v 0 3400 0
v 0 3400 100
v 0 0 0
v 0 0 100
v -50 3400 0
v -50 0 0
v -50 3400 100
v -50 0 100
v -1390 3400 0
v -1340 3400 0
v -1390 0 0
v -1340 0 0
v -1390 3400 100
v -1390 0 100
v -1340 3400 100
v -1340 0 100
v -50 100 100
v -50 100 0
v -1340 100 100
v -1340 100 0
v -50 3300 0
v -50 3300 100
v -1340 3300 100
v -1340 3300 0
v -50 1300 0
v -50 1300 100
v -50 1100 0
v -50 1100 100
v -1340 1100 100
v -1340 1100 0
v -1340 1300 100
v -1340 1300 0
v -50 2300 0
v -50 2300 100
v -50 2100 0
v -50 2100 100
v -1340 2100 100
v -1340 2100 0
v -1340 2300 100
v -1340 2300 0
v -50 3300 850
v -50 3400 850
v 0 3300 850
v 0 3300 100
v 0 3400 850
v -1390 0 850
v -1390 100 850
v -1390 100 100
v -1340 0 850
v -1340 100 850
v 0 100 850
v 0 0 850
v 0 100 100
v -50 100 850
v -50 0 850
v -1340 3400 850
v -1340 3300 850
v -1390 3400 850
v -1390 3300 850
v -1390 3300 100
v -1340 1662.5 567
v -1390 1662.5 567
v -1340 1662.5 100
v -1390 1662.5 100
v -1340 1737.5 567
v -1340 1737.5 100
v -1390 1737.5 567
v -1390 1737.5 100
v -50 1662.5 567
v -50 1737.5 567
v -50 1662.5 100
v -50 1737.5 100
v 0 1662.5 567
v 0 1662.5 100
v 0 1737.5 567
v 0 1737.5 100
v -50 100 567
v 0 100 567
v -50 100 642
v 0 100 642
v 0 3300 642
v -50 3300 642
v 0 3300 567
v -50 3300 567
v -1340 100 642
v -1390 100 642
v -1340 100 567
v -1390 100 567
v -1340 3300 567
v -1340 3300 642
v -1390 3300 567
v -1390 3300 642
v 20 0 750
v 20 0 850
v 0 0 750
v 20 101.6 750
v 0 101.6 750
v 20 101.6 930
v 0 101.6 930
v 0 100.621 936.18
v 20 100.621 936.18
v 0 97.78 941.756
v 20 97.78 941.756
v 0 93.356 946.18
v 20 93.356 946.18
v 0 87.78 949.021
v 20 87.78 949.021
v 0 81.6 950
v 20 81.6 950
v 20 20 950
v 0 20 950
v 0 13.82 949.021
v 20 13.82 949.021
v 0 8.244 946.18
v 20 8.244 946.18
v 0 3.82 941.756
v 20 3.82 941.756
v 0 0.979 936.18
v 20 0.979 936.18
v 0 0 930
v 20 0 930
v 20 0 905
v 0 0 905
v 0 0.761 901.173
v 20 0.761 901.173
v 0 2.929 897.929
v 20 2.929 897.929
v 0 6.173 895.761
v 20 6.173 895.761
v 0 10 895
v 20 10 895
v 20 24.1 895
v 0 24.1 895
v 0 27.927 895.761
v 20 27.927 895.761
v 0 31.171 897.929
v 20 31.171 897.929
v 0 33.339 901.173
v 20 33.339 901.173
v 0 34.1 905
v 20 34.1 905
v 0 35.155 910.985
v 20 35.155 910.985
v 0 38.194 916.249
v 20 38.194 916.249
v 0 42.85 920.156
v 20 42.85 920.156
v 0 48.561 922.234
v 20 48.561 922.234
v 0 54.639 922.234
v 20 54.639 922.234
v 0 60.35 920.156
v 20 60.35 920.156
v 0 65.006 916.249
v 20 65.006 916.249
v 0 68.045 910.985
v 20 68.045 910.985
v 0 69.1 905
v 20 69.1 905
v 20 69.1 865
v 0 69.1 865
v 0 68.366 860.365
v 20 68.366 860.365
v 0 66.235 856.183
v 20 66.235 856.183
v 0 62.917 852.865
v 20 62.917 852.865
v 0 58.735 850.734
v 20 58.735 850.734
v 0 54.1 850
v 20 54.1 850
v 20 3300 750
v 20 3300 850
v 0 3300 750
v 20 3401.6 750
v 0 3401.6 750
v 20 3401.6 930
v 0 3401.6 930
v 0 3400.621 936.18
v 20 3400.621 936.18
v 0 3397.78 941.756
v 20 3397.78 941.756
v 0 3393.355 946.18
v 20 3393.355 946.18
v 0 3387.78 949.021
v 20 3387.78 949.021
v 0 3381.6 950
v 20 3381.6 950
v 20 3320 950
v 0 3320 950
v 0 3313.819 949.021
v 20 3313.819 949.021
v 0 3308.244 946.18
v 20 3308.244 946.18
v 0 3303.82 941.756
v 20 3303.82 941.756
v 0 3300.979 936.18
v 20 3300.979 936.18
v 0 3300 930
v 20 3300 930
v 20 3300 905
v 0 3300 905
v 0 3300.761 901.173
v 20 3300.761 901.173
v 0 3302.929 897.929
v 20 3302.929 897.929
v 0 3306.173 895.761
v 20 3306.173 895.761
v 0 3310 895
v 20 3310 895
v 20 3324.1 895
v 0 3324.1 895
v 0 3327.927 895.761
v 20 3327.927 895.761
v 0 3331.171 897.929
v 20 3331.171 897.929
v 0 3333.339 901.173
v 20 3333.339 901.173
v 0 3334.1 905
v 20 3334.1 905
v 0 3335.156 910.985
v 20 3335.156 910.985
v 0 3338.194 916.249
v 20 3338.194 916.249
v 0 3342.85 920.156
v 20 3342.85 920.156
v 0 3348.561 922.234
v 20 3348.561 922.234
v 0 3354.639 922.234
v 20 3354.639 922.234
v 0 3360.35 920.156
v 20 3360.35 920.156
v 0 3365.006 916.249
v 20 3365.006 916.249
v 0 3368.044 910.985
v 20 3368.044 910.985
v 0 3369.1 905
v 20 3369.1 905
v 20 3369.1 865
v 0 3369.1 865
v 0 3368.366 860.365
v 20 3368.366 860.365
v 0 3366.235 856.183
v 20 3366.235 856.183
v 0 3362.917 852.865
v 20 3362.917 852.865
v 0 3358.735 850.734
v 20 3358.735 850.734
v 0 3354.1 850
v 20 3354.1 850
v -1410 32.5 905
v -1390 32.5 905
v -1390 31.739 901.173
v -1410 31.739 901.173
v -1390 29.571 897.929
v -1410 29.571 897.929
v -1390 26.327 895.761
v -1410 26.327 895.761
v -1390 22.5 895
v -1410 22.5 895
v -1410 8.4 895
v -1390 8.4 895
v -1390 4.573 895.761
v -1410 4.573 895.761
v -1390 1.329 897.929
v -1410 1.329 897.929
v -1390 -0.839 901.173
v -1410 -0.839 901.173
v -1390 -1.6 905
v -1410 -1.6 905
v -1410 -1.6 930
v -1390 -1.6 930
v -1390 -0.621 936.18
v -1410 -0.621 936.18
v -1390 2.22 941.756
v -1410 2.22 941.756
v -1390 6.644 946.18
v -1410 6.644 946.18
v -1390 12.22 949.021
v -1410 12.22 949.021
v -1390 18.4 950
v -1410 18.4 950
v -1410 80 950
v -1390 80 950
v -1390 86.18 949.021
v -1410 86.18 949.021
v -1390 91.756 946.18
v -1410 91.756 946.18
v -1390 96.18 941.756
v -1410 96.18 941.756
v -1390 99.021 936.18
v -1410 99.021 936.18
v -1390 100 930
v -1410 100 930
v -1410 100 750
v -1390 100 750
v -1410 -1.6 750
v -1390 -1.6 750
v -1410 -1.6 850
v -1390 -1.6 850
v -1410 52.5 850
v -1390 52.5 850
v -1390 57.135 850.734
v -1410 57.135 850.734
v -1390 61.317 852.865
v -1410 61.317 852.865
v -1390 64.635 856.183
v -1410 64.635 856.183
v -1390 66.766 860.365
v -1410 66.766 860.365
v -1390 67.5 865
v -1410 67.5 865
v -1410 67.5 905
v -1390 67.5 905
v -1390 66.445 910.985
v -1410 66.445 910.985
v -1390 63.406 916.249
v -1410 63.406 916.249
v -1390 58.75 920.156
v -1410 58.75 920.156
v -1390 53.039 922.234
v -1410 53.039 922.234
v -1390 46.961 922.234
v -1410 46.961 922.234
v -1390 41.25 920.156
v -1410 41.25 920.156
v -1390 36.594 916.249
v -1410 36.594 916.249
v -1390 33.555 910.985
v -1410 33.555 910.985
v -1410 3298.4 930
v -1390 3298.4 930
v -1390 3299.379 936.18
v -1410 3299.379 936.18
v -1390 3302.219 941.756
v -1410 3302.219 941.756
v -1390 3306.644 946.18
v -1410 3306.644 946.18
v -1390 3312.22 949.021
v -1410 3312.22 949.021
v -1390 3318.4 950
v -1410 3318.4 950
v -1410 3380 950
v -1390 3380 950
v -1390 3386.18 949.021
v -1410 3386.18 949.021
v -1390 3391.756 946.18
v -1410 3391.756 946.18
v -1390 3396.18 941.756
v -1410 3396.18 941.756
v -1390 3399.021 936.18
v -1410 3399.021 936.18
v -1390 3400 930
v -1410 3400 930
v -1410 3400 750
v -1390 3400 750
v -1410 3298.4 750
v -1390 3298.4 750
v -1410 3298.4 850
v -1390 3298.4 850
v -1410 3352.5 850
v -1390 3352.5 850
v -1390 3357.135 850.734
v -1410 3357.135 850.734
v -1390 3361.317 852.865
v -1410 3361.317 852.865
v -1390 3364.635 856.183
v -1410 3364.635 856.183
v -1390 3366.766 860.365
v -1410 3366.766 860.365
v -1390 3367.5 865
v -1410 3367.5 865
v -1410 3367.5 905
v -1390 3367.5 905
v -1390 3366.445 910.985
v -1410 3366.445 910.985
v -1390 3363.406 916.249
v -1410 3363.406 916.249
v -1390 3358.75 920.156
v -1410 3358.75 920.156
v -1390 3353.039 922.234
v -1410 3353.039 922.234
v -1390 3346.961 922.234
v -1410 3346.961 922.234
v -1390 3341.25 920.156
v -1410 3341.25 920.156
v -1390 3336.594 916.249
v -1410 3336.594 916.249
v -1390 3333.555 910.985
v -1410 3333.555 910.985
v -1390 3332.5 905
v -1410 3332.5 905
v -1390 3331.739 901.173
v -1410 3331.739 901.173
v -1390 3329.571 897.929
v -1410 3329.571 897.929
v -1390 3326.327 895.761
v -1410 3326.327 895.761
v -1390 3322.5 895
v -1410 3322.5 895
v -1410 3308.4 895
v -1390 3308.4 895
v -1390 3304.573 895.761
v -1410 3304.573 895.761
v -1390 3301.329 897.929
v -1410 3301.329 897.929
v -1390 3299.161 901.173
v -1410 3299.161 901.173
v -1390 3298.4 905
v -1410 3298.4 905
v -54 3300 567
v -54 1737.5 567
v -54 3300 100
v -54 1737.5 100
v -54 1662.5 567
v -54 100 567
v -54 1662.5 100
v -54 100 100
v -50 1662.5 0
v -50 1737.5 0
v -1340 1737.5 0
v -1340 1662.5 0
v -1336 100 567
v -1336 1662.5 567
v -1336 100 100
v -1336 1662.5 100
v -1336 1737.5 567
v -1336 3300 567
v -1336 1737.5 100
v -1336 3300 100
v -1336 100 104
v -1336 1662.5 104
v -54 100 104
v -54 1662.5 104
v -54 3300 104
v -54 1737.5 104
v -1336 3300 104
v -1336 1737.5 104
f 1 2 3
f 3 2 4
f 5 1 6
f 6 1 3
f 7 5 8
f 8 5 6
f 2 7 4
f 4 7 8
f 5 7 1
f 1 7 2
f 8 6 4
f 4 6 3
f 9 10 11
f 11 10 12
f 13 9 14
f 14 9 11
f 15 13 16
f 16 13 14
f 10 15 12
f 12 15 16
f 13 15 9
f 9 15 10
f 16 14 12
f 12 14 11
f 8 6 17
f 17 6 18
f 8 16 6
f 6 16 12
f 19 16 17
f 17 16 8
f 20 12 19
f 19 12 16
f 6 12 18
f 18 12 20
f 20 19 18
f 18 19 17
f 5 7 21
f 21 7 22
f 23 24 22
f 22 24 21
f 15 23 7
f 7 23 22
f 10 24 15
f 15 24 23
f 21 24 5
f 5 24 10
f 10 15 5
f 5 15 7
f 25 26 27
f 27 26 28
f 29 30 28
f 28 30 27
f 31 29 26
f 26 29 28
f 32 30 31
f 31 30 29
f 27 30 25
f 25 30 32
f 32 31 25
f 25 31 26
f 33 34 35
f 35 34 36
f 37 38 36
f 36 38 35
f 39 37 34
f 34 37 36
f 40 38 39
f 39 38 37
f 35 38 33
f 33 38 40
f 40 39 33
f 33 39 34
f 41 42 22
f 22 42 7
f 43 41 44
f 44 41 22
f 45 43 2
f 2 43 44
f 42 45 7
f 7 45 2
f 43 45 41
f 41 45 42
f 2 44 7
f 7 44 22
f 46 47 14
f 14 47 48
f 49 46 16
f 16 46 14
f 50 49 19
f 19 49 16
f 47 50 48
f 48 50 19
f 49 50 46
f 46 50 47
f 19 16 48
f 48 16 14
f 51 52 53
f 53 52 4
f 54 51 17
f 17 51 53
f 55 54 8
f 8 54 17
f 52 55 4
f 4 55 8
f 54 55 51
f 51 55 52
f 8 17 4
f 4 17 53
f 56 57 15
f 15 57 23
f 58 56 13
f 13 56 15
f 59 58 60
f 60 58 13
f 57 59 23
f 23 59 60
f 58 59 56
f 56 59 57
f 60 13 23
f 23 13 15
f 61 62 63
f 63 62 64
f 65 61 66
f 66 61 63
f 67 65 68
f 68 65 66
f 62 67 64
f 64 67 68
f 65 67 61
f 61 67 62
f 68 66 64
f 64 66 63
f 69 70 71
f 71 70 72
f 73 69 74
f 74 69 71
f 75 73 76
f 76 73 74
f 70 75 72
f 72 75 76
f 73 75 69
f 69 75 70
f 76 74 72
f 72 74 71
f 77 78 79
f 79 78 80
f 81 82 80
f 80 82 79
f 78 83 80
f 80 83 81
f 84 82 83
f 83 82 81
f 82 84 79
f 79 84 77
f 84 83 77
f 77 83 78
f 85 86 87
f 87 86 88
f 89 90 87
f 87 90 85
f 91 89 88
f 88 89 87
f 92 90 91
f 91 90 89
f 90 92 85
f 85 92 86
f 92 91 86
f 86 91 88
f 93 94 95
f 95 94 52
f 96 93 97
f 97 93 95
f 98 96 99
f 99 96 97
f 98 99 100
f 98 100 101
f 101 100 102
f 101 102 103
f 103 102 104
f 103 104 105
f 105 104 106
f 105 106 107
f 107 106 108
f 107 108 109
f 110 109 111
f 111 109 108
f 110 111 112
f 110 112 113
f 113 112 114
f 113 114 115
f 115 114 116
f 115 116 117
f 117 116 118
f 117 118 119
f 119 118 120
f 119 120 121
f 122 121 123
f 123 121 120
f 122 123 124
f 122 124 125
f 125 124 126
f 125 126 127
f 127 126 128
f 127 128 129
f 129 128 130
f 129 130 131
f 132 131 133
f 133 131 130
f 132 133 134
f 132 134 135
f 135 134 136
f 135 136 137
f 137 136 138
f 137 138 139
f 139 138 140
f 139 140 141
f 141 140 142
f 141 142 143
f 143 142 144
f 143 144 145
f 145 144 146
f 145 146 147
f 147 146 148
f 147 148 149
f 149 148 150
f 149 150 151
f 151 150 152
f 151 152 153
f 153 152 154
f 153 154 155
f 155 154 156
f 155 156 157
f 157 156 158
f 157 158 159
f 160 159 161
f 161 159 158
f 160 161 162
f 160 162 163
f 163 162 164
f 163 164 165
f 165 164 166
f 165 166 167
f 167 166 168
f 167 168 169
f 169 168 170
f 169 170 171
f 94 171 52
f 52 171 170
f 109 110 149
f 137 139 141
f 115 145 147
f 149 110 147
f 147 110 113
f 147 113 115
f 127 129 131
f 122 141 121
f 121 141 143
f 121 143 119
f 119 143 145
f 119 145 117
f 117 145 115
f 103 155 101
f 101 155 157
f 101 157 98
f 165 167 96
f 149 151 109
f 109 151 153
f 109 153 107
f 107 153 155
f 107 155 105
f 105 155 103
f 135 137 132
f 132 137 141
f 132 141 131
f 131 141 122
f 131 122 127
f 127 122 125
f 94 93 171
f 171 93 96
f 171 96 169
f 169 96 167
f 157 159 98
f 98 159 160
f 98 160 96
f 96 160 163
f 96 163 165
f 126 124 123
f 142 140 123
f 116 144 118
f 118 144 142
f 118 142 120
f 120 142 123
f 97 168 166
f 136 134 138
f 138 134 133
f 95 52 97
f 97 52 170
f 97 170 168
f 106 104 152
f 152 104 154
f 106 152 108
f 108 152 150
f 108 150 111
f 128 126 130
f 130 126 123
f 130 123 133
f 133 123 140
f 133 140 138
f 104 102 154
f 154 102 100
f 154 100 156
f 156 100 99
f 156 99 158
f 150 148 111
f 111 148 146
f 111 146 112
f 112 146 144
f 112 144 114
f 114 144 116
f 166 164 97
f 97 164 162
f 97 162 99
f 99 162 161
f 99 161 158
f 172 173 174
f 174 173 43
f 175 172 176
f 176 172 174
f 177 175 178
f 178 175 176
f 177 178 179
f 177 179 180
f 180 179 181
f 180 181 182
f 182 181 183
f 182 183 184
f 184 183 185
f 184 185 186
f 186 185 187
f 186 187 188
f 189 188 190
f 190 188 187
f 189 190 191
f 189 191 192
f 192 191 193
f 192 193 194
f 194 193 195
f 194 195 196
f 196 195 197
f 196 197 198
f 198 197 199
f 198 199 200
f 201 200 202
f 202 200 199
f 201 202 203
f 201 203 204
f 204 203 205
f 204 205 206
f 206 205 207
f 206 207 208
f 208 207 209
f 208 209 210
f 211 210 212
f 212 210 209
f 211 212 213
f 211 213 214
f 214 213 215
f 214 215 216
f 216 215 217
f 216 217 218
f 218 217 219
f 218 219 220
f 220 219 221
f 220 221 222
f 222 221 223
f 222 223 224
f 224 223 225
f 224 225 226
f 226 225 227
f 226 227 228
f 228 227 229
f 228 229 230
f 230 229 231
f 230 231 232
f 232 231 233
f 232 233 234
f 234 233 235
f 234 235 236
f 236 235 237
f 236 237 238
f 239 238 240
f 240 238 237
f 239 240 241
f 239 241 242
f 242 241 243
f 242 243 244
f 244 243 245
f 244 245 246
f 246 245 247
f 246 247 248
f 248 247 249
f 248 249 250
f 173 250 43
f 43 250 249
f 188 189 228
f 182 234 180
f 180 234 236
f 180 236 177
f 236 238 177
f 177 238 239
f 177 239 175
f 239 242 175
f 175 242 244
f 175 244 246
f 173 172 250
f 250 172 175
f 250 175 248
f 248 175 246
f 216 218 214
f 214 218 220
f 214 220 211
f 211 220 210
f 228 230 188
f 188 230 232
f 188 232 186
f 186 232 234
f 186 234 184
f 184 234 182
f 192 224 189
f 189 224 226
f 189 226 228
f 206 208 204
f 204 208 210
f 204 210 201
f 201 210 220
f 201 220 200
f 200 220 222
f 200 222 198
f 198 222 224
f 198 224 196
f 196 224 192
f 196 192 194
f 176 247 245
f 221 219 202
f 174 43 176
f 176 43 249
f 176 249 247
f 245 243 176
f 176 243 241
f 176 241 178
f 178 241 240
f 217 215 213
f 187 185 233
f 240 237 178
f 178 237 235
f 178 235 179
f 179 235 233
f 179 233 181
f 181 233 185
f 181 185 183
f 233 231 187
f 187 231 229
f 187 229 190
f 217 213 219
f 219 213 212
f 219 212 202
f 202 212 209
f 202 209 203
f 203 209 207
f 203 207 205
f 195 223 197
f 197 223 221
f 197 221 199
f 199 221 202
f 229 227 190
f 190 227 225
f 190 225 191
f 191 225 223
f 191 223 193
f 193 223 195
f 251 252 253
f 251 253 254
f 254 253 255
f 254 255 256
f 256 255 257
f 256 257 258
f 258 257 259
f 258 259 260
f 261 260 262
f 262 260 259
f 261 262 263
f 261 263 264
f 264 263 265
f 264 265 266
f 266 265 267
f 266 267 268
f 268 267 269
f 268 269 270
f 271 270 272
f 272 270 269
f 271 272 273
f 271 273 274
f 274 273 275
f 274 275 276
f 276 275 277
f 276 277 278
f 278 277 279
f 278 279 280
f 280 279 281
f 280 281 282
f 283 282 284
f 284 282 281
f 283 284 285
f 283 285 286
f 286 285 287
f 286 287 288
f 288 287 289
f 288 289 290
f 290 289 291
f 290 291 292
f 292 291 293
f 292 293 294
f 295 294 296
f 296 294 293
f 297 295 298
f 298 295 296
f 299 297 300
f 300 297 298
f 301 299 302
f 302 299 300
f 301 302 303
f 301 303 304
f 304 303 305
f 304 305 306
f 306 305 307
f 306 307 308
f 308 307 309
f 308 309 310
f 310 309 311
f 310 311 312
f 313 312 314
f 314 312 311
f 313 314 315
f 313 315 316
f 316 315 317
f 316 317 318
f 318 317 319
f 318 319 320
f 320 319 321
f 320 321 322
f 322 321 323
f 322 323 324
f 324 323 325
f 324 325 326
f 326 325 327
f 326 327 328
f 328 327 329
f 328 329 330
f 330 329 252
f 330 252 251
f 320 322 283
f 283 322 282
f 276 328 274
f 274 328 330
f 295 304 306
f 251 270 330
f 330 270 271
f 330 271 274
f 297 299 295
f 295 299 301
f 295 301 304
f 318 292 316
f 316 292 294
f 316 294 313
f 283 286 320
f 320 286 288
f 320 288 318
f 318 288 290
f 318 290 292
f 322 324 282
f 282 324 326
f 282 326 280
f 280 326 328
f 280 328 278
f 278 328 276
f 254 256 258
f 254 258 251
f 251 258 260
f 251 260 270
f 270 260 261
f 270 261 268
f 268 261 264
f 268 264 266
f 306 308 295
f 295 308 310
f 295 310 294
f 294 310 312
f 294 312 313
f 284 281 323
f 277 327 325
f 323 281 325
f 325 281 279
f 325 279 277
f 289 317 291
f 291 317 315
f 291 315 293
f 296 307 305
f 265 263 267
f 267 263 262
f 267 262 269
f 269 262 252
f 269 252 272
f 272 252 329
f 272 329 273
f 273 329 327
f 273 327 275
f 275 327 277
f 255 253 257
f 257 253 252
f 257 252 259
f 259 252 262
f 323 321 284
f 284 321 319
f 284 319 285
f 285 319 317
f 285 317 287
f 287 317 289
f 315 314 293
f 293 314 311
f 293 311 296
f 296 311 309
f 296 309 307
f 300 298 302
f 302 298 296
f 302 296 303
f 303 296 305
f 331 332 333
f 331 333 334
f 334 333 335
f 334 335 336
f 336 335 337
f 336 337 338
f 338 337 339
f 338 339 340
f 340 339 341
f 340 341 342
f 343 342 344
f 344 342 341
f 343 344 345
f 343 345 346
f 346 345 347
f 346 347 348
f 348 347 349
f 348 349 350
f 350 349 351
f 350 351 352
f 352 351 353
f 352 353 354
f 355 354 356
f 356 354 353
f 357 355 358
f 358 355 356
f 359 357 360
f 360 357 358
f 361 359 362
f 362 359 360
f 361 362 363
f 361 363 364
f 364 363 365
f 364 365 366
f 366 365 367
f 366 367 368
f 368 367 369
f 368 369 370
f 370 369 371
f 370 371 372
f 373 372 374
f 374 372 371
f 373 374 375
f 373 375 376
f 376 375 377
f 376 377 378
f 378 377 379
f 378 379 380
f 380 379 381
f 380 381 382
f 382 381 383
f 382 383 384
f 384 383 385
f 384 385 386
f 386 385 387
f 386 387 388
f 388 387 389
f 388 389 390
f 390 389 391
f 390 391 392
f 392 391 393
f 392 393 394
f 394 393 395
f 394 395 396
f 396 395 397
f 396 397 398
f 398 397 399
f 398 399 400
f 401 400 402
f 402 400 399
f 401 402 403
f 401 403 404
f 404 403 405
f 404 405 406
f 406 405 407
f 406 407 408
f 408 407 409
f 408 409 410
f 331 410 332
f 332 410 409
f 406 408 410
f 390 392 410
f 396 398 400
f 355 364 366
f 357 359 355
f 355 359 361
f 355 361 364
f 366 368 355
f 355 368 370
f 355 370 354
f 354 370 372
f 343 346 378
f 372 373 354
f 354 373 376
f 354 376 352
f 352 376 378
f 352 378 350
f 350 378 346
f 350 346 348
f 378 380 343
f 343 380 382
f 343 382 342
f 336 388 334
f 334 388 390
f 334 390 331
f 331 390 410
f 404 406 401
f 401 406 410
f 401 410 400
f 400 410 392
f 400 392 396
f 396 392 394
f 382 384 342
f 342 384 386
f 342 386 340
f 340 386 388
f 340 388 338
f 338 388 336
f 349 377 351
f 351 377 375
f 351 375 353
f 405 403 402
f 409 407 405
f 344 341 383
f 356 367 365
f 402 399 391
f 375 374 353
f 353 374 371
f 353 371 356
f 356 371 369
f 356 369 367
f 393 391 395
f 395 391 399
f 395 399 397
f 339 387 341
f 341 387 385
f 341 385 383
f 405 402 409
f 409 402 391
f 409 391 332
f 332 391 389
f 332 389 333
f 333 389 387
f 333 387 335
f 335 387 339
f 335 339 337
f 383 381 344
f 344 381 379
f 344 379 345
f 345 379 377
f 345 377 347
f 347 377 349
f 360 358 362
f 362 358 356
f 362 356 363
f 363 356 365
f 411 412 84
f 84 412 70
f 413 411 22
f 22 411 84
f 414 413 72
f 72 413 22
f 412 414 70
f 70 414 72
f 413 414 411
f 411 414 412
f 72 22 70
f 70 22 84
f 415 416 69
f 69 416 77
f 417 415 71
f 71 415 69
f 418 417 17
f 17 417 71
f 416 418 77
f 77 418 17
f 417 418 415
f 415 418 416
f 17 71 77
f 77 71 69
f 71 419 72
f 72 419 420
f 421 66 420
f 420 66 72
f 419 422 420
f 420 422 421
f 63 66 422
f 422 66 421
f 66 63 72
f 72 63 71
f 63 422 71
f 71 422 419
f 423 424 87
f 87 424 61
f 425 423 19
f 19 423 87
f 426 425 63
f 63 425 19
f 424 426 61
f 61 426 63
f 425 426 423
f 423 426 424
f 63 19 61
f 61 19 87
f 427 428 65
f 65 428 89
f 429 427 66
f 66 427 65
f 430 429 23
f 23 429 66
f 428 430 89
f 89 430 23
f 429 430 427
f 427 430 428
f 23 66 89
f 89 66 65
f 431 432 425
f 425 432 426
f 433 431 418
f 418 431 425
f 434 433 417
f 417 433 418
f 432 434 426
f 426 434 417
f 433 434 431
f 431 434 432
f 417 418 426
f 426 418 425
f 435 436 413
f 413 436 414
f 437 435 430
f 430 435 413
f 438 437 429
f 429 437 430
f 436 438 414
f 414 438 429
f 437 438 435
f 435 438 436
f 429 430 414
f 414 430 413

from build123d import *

# Parameters (mm, degrees)
SKETCH12_W             = 50
SKETCH12_H             = 100
BOSS_EXTRUDE1_DEPTH    = 3400
BOSS_EXTRUDE1_2_DEPTH  = 3400
BOSS_EXTRUDE2_REACH    = 3657.899
SKETCH13_W             = 100
SKETCH13_H             = 100
SKETCH13_H_2           = 200
SKETCH13_H_3           = 75
SKETCH14_W             = 50
SKETCH14_H             = 100
BOSS_EXTRUDE3_DEPTH    = 750
BOSS_EXTRUDE3_2_DEPTH  = 750
BOSS_EXTRUDE3_3_DEPTH  = 750
BOSS_EXTRUDE3_4_DEPTH  = 750
SKETCH15_W             = 50
SKETCH15_H             = 75
BOSS_EXTRUDE4_DEPTH    = 467
BOSS_EXTRUDE4_2_DEPTH  = 467
SKETCH16_W             = 50
SKETCH16_H             = 75
BOSS_EXTRUDE5_DEPTH    = 3200
BOSS_EXTRUDE5_2_DEPTH  = 3200
BOSS_EXTRUDE6_DEPTH    = 20
BOSS_EXTRUDE6_2_DEPTH  = 20
BOSS_EXTRUDE7_DEPTH    = 20
BOSS_EXTRUDE7_2_DEPTH  = 20
SKETCH19_W             = 467
SKETCH19_H             = 1562.5
BOSS_EXTRUDE8_DEPTH    = 4
BOSS_EXTRUDE8_2_DEPTH  = 4
SKETCH21_W             = 467
SKETCH21_H             = 1562.5
BOSS_EXTRUDE10_DEPTH   = 4
BOSS_EXTRUDE10_2_DEPTH = 4
SKETCH22_W             = 1282
SKETCH22_H             = 1562.5
BOSS_EXTRUDE11_DEPTH   = 4
BOSS_EXTRUDE11_2_DEPTH = 4


with BuildPart() as part:
    # Sketch12 → Boss-Extrude1 (new body)
    with BuildSketch(Plane(origin=(0, 0, 0), x_dir=(1, 0, 0), z_dir=(0, 1, 0))):
        with Locations((-25, -50)):
            Rectangle(SKETCH12_W, SKETCH12_H)
    extrude(amount=BOSS_EXTRUDE1_DEPTH)


with BuildPart() as body_2:
    # Sketch12 → Boss-Extrude1 2 (new body)
    with BuildSketch(Plane(origin=(0, 0, 0), x_dir=(1, 0, 0), z_dir=(0, 1, 0))):
        with Locations((-1365, -50)):
            Rectangle(SKETCH12_W, SKETCH12_H)
    extrude(amount=BOSS_EXTRUDE1_2_DEPTH)


with BuildPart() as body_3:

    # Sketch13 → Boss-Extrude2 (new, up to next)
    with BuildSketch(Plane(origin=(-1340, 0, 0), x_dir=(0, 0, -1), z_dir=(1, 0, 0)), mode=Mode.PRIVATE) as boss_extrude2_sk1:
        with Locations((-50, 50)):
            Rectangle(SKETCH13_W, SKETCH13_H)
    boss_extrude2_tool1 = extrude(boss_extrude2_sk1.sketch, amount=BOSS_EXTRUDE2_REACH, mode=Mode.PRIVATE) - part.part
    # Sketch13 → Boss-Extrude2 (new, up to next)
    with BuildSketch(Plane(origin=(-1340, 0, 0), x_dir=(0, 0, -1), z_dir=(1, 0, 0)), mode=Mode.PRIVATE) as boss_extrude2_sk2:
        with Locations((-50, 3350)):
            Rectangle(SKETCH13_W, SKETCH13_H)
    boss_extrude2_tool2 = extrude(boss_extrude2_sk2.sketch, amount=BOSS_EXTRUDE2_REACH, mode=Mode.PRIVATE) - part.part
    # Sketch13 → Boss-Extrude2 (new, up to next)
    with BuildSketch(Plane(origin=(-1340, 0, 0), x_dir=(0, 0, -1), z_dir=(1, 0, 0)), mode=Mode.PRIVATE) as boss_extrude2_sk3:
        with Locations((-50, 1200)):
            Rectangle(SKETCH13_W, SKETCH13_H_2)
    boss_extrude2_tool3 = extrude(boss_extrude2_sk3.sketch, amount=BOSS_EXTRUDE2_REACH, mode=Mode.PRIVATE) - part.part
    # Sketch13 → Boss-Extrude2 (new, up to next)
    with BuildSketch(Plane(origin=(-1340, 0, 0), x_dir=(0, 0, -1), z_dir=(1, 0, 0)), mode=Mode.PRIVATE) as boss_extrude2_sk4:
        with Locations((-50, 2200)):
            Rectangle(SKETCH13_W, SKETCH13_H_2)
    boss_extrude2_tool4 = extrude(boss_extrude2_sk4.sketch, amount=BOSS_EXTRUDE2_REACH, mode=Mode.PRIVATE) - part.part
    # Sketch13 → Boss-Extrude2 (new, up to next)
    with BuildSketch(Plane(origin=(-1340, 0, 0), x_dir=(0, 0, -1), z_dir=(1, 0, 0)), mode=Mode.PRIVATE) as boss_extrude2_sk5:
        with Locations((-50, 1700)):
            Rectangle(SKETCH13_W, SKETCH13_H_3)
    boss_extrude2_tool5 = extrude(boss_extrude2_sk5.sketch, amount=BOSS_EXTRUDE2_REACH, mode=Mode.PRIVATE) - part.part
    add(boss_extrude2_tool1.solids().sort_by_distance((-1340, 50, 50))[0])
    add(boss_extrude2_tool2.solids().sort_by_distance((-1340, 3350, 50))[0])
    add(boss_extrude2_tool3.solids().sort_by_distance((-1340, 1200, 50))[0])
    add(boss_extrude2_tool4.solids().sort_by_distance((-1340, 2200, 50))[0])
    add(boss_extrude2_tool5.solids().sort_by_distance((-1340, 1700, 50))[0])


with BuildPart() as body_4:
    # Sketch14 → Boss-Extrude3 (new body)
    with BuildSketch(Plane.XY.offset(100)):
        with Locations((-1365, 50)):
            Rectangle(SKETCH14_W, SKETCH14_H)
    extrude(amount=BOSS_EXTRUDE3_DEPTH)


with BuildPart() as body_5:
    # Sketch14 → Boss-Extrude3 2 (new body)
    with BuildSketch(Plane.XY.offset(100)):
        with Locations((-25, 50)):
            Rectangle(SKETCH14_W, SKETCH14_H)
    extrude(amount=BOSS_EXTRUDE3_2_DEPTH)


with BuildPart() as body_6:
    # Sketch14 → Boss-Extrude3 3 (new body)
    with BuildSketch(Plane.XY.offset(100)):
        with Locations((-1365, 3350)):
            Rectangle(SKETCH14_W, SKETCH14_H)
    extrude(amount=BOSS_EXTRUDE3_3_DEPTH)


with BuildPart() as body_7:
    # Sketch14 → Boss-Extrude3 4 (new body)
    with BuildSketch(Plane.XY.offset(100)):
        with Locations((-25, 3350)):
            Rectangle(SKETCH14_W, SKETCH14_H)
    extrude(amount=BOSS_EXTRUDE3_4_DEPTH)


with BuildPart() as body_8:
    # Sketch15 → Boss-Extrude4 (new body)
    with BuildSketch(Plane.XY.offset(100)):
        with Locations((-1365, 1700)):
            Rectangle(SKETCH15_W, SKETCH15_H)
    extrude(amount=BOSS_EXTRUDE4_DEPTH)


with BuildPart() as body_9:
    # Sketch15 → Boss-Extrude4 2 (new body)
    with BuildSketch(Plane.XY.offset(100)):
        with Locations((-25, 1700)):
            Rectangle(SKETCH15_W, SKETCH15_H)
    extrude(amount=BOSS_EXTRUDE4_2_DEPTH)


with BuildPart() as body_10:
    # Sketch16 → Boss-Extrude5 (new body)
    with BuildSketch(Plane.XZ.offset(-3300)):
        with Locations((-25, 604.5)):
            Rectangle(SKETCH16_W, SKETCH16_H)
    extrude(amount=BOSS_EXTRUDE5_DEPTH)


with BuildPart() as body_11:
    # Sketch16 → Boss-Extrude5 2 (new body)
    with BuildSketch(Plane.XZ.offset(-3300)):
        with Locations((-1365, 604.5)):
            Rectangle(SKETCH16_W, SKETCH16_H)
    extrude(amount=BOSS_EXTRUDE5_2_DEPTH)


with BuildPart() as body_12:
    # Sketch17 → Boss-Extrude6 (new body)
    with BuildSketch(Plane(origin=(0, 0, 0), x_dir=(0, 0, -1), z_dir=(1, 0, 0))):
        with BuildLine():
            Line((-850, 0), (-850, 54.1))
            ThreePointArc((-850, 54.1), (-854.393398282, 64.706601718), (-865, 69.1))
            Line((-865, 69.1), (-905, 69.1))
            ThreePointArc((-905, 69.1), (-922.5, 51.6), (-905, 34.1))
            ThreePointArc((-905, 34.1), (-897.928932188, 31.171067812), (-895, 24.1))
            Line((-895, 24.1), (-895, 10))
            ThreePointArc((-895, 10), (-897.928932188, 2.928932188), (-905, 0))
            Line((-905, 0), (-930, 0))
            ThreePointArc((-930, 0), (-944.142135624, 5.857864376), (-950, 20))
            Line((-950, 20), (-950, 81.6))
            ThreePointArc((-950, 81.6), (-944.142135624, 95.742135624), (-930, 101.6))
            Line((-930, 101.6), (-750, 101.6))
            Line((-750, 101.6), (-750, 0))
            Line((-750, 0), (-850, 0))
        make_face()
    extrude(amount=BOSS_EXTRUDE6_DEPTH)


with BuildPart() as body_13:
    # Sketch17 → Boss-Extrude6 2 (new body)
    with BuildSketch(Plane(origin=(0, 0, 0), x_dir=(0, 0, -1), z_dir=(1, 0, 0))):
        with BuildLine():
            Line((-905, 3369.1), (-865, 3369.1))
            ThreePointArc((-865, 3369.1), (-854.393398282, 3364.706601718), (-850, 3354.1))
            Line((-850, 3354.1), (-850, 3300))
            Line((-850, 3300), (-750, 3300))
            Line((-750, 3300), (-750, 3401.6))
            Line((-750, 3401.6), (-930, 3401.6))
            ThreePointArc((-930, 3401.6), (-944.142135624, 3395.742135624), (-950, 3381.6))
            Line((-950, 3381.6), (-950, 3320))
            ThreePointArc((-950, 3320), (-944.142135624, 3305.857864376), (-930, 3300))
            Line((-930, 3300), (-905, 3300))
            ThreePointArc((-905, 3300), (-897.928932188, 3302.928932188), (-895, 3310))
            Line((-895, 3310), (-895, 3324.1))
            ThreePointArc((-895, 3324.1), (-897.928932188, 3331.171067812), (-905, 3334.1))
            ThreePointArc((-905, 3334.1), (-922.5, 3351.6), (-905, 3369.1))
        make_face()
    extrude(amount=BOSS_EXTRUDE6_2_DEPTH)


with BuildPart() as body_14:
    # Sketch18 → Boss-Extrude7 (new body)
    with BuildSketch(Plane.ZY.offset(1390)):
        with BuildLine():
            Line((950, 3318.4), (950, 3380))
            ThreePointArc((950, 3380), (944.142135624, 3394.142135624), (930, 3400))
            Line((930, 3400), (750, 3400))
            Line((750, 3400), (750, 3298.4))
            Line((750, 3298.4), (850, 3298.4))
            Line((850, 3298.4), (850, 3352.5))
            ThreePointArc((850, 3352.5), (854.393398282, 3363.106601718), (865, 3367.5))
            Line((865, 3367.5), (905, 3367.5))
            ThreePointArc((905, 3367.5), (922.5, 3350), (905, 3332.5))
            ThreePointArc((905, 3332.5), (897.928932188, 3329.571067812), (895, 3322.5))
            Line((895, 3322.5), (895, 3308.4))
            ThreePointArc((895, 3308.4), (897.928932188, 3301.328932188), (905, 3298.4))
            Line((905, 3298.4), (930, 3298.4))
            ThreePointArc((930, 3298.4), (944.142135624, 3304.257864376), (950, 3318.4))
        make_face()
    extrude(amount=BOSS_EXTRUDE7_DEPTH)


with BuildPart() as body_15:
    # Sketch18 → Boss-Extrude7 2 (new body)
    with BuildSketch(Plane.ZY.offset(1390)):
        with BuildLine():
            Line((950, 18.4), (950, 80))
            ThreePointArc((950, 80), (944.142135624, 94.142135624), (930, 100))
            Line((930, 100), (750, 100))
            Line((750, 100), (750, -1.6))
            Line((750, -1.6), (850, -1.6))
            Line((850, -1.6), (850, 52.5))
            ThreePointArc((850, 52.5), (854.393398282, 63.106601718), (865, 67.5))
            Line((865, 67.5), (905, 67.5))
            ThreePointArc((905, 67.5), (922.5, 50), (905, 32.5))
            ThreePointArc((905, 32.5), (897.928932188, 29.571067812), (895, 22.5))
            Line((895, 22.5), (895, 8.4))
            ThreePointArc((895, 8.4), (897.928932188, 1.328932188), (905, -1.6))
            Line((905, -1.6), (930, -1.6))
            ThreePointArc((930, -1.6), (944.142135624, 4.257864376), (950, 18.4))
        make_face()
    extrude(amount=BOSS_EXTRUDE7_2_DEPTH)


with BuildPart() as body_16:
    # Sketch19 → Boss-Extrude8 (new body)
    with BuildSketch(Plane.ZY.offset(50)):
        with Locations((333.5, 2518.75)):
            Rectangle(SKETCH19_W, SKETCH19_H)
    extrude(amount=BOSS_EXTRUDE8_DEPTH)


with BuildPart() as body_17:
    # Sketch19 → Boss-Extrude8 2 (new body)
    with BuildSketch(Plane.ZY.offset(50)):
        with Locations((333.5, 881.25)):
            Rectangle(SKETCH19_W, SKETCH19_H)
    extrude(amount=BOSS_EXTRUDE8_2_DEPTH)


with BuildPart() as body_18:
    # Sketch21 → Boss-Extrude10 (new body)
    with BuildSketch(Plane(origin=(-1340, 0, 0), x_dir=(0, 0, -1), z_dir=(1, 0, 0))):
        with Locations((-333.5, 881.25)):
            Rectangle(SKETCH21_W, SKETCH21_H)
    extrude(amount=BOSS_EXTRUDE10_DEPTH)


with BuildPart() as body_19:
    # Sketch21 → Boss-Extrude10 2 (new body)
    with BuildSketch(Plane(origin=(-1340, 0, 0), x_dir=(0, 0, -1), z_dir=(1, 0, 0))):
        with Locations((-333.5, 2518.75)):
            Rectangle(SKETCH21_W, SKETCH21_H)
    extrude(amount=BOSS_EXTRUDE10_2_DEPTH)


with BuildPart() as body_20:
    # Sketch22 → Boss-Extrude11 (new body)
    with BuildSketch(Plane.XY.offset(100)):
        with Locations((-695, 881.25)):
            Rectangle(SKETCH22_W, SKETCH22_H)
    extrude(amount=BOSS_EXTRUDE11_DEPTH)


with BuildPart() as body_21:
    # Sketch22 → Boss-Extrude11 2 (new body)
    with BuildSketch(Plane.XY.offset(100)):
        with Locations((-695, 2518.75)):
            Rectangle(SKETCH22_W, SKETCH22_H)
    extrude(amount=BOSS_EXTRUDE11_2_DEPTH)


solid = Compound([part.part, body_2.part, body_3.part, body_4.part, body_5.part, body_6.part, body_7.part, body_8.part, body_9.part, body_10.part, body_11.part, body_12.part, body_13.part, body_14.part, body_15.part, body_16.part, body_17.part, body_18.part, body_19.part, body_20.part, body_21.part])
